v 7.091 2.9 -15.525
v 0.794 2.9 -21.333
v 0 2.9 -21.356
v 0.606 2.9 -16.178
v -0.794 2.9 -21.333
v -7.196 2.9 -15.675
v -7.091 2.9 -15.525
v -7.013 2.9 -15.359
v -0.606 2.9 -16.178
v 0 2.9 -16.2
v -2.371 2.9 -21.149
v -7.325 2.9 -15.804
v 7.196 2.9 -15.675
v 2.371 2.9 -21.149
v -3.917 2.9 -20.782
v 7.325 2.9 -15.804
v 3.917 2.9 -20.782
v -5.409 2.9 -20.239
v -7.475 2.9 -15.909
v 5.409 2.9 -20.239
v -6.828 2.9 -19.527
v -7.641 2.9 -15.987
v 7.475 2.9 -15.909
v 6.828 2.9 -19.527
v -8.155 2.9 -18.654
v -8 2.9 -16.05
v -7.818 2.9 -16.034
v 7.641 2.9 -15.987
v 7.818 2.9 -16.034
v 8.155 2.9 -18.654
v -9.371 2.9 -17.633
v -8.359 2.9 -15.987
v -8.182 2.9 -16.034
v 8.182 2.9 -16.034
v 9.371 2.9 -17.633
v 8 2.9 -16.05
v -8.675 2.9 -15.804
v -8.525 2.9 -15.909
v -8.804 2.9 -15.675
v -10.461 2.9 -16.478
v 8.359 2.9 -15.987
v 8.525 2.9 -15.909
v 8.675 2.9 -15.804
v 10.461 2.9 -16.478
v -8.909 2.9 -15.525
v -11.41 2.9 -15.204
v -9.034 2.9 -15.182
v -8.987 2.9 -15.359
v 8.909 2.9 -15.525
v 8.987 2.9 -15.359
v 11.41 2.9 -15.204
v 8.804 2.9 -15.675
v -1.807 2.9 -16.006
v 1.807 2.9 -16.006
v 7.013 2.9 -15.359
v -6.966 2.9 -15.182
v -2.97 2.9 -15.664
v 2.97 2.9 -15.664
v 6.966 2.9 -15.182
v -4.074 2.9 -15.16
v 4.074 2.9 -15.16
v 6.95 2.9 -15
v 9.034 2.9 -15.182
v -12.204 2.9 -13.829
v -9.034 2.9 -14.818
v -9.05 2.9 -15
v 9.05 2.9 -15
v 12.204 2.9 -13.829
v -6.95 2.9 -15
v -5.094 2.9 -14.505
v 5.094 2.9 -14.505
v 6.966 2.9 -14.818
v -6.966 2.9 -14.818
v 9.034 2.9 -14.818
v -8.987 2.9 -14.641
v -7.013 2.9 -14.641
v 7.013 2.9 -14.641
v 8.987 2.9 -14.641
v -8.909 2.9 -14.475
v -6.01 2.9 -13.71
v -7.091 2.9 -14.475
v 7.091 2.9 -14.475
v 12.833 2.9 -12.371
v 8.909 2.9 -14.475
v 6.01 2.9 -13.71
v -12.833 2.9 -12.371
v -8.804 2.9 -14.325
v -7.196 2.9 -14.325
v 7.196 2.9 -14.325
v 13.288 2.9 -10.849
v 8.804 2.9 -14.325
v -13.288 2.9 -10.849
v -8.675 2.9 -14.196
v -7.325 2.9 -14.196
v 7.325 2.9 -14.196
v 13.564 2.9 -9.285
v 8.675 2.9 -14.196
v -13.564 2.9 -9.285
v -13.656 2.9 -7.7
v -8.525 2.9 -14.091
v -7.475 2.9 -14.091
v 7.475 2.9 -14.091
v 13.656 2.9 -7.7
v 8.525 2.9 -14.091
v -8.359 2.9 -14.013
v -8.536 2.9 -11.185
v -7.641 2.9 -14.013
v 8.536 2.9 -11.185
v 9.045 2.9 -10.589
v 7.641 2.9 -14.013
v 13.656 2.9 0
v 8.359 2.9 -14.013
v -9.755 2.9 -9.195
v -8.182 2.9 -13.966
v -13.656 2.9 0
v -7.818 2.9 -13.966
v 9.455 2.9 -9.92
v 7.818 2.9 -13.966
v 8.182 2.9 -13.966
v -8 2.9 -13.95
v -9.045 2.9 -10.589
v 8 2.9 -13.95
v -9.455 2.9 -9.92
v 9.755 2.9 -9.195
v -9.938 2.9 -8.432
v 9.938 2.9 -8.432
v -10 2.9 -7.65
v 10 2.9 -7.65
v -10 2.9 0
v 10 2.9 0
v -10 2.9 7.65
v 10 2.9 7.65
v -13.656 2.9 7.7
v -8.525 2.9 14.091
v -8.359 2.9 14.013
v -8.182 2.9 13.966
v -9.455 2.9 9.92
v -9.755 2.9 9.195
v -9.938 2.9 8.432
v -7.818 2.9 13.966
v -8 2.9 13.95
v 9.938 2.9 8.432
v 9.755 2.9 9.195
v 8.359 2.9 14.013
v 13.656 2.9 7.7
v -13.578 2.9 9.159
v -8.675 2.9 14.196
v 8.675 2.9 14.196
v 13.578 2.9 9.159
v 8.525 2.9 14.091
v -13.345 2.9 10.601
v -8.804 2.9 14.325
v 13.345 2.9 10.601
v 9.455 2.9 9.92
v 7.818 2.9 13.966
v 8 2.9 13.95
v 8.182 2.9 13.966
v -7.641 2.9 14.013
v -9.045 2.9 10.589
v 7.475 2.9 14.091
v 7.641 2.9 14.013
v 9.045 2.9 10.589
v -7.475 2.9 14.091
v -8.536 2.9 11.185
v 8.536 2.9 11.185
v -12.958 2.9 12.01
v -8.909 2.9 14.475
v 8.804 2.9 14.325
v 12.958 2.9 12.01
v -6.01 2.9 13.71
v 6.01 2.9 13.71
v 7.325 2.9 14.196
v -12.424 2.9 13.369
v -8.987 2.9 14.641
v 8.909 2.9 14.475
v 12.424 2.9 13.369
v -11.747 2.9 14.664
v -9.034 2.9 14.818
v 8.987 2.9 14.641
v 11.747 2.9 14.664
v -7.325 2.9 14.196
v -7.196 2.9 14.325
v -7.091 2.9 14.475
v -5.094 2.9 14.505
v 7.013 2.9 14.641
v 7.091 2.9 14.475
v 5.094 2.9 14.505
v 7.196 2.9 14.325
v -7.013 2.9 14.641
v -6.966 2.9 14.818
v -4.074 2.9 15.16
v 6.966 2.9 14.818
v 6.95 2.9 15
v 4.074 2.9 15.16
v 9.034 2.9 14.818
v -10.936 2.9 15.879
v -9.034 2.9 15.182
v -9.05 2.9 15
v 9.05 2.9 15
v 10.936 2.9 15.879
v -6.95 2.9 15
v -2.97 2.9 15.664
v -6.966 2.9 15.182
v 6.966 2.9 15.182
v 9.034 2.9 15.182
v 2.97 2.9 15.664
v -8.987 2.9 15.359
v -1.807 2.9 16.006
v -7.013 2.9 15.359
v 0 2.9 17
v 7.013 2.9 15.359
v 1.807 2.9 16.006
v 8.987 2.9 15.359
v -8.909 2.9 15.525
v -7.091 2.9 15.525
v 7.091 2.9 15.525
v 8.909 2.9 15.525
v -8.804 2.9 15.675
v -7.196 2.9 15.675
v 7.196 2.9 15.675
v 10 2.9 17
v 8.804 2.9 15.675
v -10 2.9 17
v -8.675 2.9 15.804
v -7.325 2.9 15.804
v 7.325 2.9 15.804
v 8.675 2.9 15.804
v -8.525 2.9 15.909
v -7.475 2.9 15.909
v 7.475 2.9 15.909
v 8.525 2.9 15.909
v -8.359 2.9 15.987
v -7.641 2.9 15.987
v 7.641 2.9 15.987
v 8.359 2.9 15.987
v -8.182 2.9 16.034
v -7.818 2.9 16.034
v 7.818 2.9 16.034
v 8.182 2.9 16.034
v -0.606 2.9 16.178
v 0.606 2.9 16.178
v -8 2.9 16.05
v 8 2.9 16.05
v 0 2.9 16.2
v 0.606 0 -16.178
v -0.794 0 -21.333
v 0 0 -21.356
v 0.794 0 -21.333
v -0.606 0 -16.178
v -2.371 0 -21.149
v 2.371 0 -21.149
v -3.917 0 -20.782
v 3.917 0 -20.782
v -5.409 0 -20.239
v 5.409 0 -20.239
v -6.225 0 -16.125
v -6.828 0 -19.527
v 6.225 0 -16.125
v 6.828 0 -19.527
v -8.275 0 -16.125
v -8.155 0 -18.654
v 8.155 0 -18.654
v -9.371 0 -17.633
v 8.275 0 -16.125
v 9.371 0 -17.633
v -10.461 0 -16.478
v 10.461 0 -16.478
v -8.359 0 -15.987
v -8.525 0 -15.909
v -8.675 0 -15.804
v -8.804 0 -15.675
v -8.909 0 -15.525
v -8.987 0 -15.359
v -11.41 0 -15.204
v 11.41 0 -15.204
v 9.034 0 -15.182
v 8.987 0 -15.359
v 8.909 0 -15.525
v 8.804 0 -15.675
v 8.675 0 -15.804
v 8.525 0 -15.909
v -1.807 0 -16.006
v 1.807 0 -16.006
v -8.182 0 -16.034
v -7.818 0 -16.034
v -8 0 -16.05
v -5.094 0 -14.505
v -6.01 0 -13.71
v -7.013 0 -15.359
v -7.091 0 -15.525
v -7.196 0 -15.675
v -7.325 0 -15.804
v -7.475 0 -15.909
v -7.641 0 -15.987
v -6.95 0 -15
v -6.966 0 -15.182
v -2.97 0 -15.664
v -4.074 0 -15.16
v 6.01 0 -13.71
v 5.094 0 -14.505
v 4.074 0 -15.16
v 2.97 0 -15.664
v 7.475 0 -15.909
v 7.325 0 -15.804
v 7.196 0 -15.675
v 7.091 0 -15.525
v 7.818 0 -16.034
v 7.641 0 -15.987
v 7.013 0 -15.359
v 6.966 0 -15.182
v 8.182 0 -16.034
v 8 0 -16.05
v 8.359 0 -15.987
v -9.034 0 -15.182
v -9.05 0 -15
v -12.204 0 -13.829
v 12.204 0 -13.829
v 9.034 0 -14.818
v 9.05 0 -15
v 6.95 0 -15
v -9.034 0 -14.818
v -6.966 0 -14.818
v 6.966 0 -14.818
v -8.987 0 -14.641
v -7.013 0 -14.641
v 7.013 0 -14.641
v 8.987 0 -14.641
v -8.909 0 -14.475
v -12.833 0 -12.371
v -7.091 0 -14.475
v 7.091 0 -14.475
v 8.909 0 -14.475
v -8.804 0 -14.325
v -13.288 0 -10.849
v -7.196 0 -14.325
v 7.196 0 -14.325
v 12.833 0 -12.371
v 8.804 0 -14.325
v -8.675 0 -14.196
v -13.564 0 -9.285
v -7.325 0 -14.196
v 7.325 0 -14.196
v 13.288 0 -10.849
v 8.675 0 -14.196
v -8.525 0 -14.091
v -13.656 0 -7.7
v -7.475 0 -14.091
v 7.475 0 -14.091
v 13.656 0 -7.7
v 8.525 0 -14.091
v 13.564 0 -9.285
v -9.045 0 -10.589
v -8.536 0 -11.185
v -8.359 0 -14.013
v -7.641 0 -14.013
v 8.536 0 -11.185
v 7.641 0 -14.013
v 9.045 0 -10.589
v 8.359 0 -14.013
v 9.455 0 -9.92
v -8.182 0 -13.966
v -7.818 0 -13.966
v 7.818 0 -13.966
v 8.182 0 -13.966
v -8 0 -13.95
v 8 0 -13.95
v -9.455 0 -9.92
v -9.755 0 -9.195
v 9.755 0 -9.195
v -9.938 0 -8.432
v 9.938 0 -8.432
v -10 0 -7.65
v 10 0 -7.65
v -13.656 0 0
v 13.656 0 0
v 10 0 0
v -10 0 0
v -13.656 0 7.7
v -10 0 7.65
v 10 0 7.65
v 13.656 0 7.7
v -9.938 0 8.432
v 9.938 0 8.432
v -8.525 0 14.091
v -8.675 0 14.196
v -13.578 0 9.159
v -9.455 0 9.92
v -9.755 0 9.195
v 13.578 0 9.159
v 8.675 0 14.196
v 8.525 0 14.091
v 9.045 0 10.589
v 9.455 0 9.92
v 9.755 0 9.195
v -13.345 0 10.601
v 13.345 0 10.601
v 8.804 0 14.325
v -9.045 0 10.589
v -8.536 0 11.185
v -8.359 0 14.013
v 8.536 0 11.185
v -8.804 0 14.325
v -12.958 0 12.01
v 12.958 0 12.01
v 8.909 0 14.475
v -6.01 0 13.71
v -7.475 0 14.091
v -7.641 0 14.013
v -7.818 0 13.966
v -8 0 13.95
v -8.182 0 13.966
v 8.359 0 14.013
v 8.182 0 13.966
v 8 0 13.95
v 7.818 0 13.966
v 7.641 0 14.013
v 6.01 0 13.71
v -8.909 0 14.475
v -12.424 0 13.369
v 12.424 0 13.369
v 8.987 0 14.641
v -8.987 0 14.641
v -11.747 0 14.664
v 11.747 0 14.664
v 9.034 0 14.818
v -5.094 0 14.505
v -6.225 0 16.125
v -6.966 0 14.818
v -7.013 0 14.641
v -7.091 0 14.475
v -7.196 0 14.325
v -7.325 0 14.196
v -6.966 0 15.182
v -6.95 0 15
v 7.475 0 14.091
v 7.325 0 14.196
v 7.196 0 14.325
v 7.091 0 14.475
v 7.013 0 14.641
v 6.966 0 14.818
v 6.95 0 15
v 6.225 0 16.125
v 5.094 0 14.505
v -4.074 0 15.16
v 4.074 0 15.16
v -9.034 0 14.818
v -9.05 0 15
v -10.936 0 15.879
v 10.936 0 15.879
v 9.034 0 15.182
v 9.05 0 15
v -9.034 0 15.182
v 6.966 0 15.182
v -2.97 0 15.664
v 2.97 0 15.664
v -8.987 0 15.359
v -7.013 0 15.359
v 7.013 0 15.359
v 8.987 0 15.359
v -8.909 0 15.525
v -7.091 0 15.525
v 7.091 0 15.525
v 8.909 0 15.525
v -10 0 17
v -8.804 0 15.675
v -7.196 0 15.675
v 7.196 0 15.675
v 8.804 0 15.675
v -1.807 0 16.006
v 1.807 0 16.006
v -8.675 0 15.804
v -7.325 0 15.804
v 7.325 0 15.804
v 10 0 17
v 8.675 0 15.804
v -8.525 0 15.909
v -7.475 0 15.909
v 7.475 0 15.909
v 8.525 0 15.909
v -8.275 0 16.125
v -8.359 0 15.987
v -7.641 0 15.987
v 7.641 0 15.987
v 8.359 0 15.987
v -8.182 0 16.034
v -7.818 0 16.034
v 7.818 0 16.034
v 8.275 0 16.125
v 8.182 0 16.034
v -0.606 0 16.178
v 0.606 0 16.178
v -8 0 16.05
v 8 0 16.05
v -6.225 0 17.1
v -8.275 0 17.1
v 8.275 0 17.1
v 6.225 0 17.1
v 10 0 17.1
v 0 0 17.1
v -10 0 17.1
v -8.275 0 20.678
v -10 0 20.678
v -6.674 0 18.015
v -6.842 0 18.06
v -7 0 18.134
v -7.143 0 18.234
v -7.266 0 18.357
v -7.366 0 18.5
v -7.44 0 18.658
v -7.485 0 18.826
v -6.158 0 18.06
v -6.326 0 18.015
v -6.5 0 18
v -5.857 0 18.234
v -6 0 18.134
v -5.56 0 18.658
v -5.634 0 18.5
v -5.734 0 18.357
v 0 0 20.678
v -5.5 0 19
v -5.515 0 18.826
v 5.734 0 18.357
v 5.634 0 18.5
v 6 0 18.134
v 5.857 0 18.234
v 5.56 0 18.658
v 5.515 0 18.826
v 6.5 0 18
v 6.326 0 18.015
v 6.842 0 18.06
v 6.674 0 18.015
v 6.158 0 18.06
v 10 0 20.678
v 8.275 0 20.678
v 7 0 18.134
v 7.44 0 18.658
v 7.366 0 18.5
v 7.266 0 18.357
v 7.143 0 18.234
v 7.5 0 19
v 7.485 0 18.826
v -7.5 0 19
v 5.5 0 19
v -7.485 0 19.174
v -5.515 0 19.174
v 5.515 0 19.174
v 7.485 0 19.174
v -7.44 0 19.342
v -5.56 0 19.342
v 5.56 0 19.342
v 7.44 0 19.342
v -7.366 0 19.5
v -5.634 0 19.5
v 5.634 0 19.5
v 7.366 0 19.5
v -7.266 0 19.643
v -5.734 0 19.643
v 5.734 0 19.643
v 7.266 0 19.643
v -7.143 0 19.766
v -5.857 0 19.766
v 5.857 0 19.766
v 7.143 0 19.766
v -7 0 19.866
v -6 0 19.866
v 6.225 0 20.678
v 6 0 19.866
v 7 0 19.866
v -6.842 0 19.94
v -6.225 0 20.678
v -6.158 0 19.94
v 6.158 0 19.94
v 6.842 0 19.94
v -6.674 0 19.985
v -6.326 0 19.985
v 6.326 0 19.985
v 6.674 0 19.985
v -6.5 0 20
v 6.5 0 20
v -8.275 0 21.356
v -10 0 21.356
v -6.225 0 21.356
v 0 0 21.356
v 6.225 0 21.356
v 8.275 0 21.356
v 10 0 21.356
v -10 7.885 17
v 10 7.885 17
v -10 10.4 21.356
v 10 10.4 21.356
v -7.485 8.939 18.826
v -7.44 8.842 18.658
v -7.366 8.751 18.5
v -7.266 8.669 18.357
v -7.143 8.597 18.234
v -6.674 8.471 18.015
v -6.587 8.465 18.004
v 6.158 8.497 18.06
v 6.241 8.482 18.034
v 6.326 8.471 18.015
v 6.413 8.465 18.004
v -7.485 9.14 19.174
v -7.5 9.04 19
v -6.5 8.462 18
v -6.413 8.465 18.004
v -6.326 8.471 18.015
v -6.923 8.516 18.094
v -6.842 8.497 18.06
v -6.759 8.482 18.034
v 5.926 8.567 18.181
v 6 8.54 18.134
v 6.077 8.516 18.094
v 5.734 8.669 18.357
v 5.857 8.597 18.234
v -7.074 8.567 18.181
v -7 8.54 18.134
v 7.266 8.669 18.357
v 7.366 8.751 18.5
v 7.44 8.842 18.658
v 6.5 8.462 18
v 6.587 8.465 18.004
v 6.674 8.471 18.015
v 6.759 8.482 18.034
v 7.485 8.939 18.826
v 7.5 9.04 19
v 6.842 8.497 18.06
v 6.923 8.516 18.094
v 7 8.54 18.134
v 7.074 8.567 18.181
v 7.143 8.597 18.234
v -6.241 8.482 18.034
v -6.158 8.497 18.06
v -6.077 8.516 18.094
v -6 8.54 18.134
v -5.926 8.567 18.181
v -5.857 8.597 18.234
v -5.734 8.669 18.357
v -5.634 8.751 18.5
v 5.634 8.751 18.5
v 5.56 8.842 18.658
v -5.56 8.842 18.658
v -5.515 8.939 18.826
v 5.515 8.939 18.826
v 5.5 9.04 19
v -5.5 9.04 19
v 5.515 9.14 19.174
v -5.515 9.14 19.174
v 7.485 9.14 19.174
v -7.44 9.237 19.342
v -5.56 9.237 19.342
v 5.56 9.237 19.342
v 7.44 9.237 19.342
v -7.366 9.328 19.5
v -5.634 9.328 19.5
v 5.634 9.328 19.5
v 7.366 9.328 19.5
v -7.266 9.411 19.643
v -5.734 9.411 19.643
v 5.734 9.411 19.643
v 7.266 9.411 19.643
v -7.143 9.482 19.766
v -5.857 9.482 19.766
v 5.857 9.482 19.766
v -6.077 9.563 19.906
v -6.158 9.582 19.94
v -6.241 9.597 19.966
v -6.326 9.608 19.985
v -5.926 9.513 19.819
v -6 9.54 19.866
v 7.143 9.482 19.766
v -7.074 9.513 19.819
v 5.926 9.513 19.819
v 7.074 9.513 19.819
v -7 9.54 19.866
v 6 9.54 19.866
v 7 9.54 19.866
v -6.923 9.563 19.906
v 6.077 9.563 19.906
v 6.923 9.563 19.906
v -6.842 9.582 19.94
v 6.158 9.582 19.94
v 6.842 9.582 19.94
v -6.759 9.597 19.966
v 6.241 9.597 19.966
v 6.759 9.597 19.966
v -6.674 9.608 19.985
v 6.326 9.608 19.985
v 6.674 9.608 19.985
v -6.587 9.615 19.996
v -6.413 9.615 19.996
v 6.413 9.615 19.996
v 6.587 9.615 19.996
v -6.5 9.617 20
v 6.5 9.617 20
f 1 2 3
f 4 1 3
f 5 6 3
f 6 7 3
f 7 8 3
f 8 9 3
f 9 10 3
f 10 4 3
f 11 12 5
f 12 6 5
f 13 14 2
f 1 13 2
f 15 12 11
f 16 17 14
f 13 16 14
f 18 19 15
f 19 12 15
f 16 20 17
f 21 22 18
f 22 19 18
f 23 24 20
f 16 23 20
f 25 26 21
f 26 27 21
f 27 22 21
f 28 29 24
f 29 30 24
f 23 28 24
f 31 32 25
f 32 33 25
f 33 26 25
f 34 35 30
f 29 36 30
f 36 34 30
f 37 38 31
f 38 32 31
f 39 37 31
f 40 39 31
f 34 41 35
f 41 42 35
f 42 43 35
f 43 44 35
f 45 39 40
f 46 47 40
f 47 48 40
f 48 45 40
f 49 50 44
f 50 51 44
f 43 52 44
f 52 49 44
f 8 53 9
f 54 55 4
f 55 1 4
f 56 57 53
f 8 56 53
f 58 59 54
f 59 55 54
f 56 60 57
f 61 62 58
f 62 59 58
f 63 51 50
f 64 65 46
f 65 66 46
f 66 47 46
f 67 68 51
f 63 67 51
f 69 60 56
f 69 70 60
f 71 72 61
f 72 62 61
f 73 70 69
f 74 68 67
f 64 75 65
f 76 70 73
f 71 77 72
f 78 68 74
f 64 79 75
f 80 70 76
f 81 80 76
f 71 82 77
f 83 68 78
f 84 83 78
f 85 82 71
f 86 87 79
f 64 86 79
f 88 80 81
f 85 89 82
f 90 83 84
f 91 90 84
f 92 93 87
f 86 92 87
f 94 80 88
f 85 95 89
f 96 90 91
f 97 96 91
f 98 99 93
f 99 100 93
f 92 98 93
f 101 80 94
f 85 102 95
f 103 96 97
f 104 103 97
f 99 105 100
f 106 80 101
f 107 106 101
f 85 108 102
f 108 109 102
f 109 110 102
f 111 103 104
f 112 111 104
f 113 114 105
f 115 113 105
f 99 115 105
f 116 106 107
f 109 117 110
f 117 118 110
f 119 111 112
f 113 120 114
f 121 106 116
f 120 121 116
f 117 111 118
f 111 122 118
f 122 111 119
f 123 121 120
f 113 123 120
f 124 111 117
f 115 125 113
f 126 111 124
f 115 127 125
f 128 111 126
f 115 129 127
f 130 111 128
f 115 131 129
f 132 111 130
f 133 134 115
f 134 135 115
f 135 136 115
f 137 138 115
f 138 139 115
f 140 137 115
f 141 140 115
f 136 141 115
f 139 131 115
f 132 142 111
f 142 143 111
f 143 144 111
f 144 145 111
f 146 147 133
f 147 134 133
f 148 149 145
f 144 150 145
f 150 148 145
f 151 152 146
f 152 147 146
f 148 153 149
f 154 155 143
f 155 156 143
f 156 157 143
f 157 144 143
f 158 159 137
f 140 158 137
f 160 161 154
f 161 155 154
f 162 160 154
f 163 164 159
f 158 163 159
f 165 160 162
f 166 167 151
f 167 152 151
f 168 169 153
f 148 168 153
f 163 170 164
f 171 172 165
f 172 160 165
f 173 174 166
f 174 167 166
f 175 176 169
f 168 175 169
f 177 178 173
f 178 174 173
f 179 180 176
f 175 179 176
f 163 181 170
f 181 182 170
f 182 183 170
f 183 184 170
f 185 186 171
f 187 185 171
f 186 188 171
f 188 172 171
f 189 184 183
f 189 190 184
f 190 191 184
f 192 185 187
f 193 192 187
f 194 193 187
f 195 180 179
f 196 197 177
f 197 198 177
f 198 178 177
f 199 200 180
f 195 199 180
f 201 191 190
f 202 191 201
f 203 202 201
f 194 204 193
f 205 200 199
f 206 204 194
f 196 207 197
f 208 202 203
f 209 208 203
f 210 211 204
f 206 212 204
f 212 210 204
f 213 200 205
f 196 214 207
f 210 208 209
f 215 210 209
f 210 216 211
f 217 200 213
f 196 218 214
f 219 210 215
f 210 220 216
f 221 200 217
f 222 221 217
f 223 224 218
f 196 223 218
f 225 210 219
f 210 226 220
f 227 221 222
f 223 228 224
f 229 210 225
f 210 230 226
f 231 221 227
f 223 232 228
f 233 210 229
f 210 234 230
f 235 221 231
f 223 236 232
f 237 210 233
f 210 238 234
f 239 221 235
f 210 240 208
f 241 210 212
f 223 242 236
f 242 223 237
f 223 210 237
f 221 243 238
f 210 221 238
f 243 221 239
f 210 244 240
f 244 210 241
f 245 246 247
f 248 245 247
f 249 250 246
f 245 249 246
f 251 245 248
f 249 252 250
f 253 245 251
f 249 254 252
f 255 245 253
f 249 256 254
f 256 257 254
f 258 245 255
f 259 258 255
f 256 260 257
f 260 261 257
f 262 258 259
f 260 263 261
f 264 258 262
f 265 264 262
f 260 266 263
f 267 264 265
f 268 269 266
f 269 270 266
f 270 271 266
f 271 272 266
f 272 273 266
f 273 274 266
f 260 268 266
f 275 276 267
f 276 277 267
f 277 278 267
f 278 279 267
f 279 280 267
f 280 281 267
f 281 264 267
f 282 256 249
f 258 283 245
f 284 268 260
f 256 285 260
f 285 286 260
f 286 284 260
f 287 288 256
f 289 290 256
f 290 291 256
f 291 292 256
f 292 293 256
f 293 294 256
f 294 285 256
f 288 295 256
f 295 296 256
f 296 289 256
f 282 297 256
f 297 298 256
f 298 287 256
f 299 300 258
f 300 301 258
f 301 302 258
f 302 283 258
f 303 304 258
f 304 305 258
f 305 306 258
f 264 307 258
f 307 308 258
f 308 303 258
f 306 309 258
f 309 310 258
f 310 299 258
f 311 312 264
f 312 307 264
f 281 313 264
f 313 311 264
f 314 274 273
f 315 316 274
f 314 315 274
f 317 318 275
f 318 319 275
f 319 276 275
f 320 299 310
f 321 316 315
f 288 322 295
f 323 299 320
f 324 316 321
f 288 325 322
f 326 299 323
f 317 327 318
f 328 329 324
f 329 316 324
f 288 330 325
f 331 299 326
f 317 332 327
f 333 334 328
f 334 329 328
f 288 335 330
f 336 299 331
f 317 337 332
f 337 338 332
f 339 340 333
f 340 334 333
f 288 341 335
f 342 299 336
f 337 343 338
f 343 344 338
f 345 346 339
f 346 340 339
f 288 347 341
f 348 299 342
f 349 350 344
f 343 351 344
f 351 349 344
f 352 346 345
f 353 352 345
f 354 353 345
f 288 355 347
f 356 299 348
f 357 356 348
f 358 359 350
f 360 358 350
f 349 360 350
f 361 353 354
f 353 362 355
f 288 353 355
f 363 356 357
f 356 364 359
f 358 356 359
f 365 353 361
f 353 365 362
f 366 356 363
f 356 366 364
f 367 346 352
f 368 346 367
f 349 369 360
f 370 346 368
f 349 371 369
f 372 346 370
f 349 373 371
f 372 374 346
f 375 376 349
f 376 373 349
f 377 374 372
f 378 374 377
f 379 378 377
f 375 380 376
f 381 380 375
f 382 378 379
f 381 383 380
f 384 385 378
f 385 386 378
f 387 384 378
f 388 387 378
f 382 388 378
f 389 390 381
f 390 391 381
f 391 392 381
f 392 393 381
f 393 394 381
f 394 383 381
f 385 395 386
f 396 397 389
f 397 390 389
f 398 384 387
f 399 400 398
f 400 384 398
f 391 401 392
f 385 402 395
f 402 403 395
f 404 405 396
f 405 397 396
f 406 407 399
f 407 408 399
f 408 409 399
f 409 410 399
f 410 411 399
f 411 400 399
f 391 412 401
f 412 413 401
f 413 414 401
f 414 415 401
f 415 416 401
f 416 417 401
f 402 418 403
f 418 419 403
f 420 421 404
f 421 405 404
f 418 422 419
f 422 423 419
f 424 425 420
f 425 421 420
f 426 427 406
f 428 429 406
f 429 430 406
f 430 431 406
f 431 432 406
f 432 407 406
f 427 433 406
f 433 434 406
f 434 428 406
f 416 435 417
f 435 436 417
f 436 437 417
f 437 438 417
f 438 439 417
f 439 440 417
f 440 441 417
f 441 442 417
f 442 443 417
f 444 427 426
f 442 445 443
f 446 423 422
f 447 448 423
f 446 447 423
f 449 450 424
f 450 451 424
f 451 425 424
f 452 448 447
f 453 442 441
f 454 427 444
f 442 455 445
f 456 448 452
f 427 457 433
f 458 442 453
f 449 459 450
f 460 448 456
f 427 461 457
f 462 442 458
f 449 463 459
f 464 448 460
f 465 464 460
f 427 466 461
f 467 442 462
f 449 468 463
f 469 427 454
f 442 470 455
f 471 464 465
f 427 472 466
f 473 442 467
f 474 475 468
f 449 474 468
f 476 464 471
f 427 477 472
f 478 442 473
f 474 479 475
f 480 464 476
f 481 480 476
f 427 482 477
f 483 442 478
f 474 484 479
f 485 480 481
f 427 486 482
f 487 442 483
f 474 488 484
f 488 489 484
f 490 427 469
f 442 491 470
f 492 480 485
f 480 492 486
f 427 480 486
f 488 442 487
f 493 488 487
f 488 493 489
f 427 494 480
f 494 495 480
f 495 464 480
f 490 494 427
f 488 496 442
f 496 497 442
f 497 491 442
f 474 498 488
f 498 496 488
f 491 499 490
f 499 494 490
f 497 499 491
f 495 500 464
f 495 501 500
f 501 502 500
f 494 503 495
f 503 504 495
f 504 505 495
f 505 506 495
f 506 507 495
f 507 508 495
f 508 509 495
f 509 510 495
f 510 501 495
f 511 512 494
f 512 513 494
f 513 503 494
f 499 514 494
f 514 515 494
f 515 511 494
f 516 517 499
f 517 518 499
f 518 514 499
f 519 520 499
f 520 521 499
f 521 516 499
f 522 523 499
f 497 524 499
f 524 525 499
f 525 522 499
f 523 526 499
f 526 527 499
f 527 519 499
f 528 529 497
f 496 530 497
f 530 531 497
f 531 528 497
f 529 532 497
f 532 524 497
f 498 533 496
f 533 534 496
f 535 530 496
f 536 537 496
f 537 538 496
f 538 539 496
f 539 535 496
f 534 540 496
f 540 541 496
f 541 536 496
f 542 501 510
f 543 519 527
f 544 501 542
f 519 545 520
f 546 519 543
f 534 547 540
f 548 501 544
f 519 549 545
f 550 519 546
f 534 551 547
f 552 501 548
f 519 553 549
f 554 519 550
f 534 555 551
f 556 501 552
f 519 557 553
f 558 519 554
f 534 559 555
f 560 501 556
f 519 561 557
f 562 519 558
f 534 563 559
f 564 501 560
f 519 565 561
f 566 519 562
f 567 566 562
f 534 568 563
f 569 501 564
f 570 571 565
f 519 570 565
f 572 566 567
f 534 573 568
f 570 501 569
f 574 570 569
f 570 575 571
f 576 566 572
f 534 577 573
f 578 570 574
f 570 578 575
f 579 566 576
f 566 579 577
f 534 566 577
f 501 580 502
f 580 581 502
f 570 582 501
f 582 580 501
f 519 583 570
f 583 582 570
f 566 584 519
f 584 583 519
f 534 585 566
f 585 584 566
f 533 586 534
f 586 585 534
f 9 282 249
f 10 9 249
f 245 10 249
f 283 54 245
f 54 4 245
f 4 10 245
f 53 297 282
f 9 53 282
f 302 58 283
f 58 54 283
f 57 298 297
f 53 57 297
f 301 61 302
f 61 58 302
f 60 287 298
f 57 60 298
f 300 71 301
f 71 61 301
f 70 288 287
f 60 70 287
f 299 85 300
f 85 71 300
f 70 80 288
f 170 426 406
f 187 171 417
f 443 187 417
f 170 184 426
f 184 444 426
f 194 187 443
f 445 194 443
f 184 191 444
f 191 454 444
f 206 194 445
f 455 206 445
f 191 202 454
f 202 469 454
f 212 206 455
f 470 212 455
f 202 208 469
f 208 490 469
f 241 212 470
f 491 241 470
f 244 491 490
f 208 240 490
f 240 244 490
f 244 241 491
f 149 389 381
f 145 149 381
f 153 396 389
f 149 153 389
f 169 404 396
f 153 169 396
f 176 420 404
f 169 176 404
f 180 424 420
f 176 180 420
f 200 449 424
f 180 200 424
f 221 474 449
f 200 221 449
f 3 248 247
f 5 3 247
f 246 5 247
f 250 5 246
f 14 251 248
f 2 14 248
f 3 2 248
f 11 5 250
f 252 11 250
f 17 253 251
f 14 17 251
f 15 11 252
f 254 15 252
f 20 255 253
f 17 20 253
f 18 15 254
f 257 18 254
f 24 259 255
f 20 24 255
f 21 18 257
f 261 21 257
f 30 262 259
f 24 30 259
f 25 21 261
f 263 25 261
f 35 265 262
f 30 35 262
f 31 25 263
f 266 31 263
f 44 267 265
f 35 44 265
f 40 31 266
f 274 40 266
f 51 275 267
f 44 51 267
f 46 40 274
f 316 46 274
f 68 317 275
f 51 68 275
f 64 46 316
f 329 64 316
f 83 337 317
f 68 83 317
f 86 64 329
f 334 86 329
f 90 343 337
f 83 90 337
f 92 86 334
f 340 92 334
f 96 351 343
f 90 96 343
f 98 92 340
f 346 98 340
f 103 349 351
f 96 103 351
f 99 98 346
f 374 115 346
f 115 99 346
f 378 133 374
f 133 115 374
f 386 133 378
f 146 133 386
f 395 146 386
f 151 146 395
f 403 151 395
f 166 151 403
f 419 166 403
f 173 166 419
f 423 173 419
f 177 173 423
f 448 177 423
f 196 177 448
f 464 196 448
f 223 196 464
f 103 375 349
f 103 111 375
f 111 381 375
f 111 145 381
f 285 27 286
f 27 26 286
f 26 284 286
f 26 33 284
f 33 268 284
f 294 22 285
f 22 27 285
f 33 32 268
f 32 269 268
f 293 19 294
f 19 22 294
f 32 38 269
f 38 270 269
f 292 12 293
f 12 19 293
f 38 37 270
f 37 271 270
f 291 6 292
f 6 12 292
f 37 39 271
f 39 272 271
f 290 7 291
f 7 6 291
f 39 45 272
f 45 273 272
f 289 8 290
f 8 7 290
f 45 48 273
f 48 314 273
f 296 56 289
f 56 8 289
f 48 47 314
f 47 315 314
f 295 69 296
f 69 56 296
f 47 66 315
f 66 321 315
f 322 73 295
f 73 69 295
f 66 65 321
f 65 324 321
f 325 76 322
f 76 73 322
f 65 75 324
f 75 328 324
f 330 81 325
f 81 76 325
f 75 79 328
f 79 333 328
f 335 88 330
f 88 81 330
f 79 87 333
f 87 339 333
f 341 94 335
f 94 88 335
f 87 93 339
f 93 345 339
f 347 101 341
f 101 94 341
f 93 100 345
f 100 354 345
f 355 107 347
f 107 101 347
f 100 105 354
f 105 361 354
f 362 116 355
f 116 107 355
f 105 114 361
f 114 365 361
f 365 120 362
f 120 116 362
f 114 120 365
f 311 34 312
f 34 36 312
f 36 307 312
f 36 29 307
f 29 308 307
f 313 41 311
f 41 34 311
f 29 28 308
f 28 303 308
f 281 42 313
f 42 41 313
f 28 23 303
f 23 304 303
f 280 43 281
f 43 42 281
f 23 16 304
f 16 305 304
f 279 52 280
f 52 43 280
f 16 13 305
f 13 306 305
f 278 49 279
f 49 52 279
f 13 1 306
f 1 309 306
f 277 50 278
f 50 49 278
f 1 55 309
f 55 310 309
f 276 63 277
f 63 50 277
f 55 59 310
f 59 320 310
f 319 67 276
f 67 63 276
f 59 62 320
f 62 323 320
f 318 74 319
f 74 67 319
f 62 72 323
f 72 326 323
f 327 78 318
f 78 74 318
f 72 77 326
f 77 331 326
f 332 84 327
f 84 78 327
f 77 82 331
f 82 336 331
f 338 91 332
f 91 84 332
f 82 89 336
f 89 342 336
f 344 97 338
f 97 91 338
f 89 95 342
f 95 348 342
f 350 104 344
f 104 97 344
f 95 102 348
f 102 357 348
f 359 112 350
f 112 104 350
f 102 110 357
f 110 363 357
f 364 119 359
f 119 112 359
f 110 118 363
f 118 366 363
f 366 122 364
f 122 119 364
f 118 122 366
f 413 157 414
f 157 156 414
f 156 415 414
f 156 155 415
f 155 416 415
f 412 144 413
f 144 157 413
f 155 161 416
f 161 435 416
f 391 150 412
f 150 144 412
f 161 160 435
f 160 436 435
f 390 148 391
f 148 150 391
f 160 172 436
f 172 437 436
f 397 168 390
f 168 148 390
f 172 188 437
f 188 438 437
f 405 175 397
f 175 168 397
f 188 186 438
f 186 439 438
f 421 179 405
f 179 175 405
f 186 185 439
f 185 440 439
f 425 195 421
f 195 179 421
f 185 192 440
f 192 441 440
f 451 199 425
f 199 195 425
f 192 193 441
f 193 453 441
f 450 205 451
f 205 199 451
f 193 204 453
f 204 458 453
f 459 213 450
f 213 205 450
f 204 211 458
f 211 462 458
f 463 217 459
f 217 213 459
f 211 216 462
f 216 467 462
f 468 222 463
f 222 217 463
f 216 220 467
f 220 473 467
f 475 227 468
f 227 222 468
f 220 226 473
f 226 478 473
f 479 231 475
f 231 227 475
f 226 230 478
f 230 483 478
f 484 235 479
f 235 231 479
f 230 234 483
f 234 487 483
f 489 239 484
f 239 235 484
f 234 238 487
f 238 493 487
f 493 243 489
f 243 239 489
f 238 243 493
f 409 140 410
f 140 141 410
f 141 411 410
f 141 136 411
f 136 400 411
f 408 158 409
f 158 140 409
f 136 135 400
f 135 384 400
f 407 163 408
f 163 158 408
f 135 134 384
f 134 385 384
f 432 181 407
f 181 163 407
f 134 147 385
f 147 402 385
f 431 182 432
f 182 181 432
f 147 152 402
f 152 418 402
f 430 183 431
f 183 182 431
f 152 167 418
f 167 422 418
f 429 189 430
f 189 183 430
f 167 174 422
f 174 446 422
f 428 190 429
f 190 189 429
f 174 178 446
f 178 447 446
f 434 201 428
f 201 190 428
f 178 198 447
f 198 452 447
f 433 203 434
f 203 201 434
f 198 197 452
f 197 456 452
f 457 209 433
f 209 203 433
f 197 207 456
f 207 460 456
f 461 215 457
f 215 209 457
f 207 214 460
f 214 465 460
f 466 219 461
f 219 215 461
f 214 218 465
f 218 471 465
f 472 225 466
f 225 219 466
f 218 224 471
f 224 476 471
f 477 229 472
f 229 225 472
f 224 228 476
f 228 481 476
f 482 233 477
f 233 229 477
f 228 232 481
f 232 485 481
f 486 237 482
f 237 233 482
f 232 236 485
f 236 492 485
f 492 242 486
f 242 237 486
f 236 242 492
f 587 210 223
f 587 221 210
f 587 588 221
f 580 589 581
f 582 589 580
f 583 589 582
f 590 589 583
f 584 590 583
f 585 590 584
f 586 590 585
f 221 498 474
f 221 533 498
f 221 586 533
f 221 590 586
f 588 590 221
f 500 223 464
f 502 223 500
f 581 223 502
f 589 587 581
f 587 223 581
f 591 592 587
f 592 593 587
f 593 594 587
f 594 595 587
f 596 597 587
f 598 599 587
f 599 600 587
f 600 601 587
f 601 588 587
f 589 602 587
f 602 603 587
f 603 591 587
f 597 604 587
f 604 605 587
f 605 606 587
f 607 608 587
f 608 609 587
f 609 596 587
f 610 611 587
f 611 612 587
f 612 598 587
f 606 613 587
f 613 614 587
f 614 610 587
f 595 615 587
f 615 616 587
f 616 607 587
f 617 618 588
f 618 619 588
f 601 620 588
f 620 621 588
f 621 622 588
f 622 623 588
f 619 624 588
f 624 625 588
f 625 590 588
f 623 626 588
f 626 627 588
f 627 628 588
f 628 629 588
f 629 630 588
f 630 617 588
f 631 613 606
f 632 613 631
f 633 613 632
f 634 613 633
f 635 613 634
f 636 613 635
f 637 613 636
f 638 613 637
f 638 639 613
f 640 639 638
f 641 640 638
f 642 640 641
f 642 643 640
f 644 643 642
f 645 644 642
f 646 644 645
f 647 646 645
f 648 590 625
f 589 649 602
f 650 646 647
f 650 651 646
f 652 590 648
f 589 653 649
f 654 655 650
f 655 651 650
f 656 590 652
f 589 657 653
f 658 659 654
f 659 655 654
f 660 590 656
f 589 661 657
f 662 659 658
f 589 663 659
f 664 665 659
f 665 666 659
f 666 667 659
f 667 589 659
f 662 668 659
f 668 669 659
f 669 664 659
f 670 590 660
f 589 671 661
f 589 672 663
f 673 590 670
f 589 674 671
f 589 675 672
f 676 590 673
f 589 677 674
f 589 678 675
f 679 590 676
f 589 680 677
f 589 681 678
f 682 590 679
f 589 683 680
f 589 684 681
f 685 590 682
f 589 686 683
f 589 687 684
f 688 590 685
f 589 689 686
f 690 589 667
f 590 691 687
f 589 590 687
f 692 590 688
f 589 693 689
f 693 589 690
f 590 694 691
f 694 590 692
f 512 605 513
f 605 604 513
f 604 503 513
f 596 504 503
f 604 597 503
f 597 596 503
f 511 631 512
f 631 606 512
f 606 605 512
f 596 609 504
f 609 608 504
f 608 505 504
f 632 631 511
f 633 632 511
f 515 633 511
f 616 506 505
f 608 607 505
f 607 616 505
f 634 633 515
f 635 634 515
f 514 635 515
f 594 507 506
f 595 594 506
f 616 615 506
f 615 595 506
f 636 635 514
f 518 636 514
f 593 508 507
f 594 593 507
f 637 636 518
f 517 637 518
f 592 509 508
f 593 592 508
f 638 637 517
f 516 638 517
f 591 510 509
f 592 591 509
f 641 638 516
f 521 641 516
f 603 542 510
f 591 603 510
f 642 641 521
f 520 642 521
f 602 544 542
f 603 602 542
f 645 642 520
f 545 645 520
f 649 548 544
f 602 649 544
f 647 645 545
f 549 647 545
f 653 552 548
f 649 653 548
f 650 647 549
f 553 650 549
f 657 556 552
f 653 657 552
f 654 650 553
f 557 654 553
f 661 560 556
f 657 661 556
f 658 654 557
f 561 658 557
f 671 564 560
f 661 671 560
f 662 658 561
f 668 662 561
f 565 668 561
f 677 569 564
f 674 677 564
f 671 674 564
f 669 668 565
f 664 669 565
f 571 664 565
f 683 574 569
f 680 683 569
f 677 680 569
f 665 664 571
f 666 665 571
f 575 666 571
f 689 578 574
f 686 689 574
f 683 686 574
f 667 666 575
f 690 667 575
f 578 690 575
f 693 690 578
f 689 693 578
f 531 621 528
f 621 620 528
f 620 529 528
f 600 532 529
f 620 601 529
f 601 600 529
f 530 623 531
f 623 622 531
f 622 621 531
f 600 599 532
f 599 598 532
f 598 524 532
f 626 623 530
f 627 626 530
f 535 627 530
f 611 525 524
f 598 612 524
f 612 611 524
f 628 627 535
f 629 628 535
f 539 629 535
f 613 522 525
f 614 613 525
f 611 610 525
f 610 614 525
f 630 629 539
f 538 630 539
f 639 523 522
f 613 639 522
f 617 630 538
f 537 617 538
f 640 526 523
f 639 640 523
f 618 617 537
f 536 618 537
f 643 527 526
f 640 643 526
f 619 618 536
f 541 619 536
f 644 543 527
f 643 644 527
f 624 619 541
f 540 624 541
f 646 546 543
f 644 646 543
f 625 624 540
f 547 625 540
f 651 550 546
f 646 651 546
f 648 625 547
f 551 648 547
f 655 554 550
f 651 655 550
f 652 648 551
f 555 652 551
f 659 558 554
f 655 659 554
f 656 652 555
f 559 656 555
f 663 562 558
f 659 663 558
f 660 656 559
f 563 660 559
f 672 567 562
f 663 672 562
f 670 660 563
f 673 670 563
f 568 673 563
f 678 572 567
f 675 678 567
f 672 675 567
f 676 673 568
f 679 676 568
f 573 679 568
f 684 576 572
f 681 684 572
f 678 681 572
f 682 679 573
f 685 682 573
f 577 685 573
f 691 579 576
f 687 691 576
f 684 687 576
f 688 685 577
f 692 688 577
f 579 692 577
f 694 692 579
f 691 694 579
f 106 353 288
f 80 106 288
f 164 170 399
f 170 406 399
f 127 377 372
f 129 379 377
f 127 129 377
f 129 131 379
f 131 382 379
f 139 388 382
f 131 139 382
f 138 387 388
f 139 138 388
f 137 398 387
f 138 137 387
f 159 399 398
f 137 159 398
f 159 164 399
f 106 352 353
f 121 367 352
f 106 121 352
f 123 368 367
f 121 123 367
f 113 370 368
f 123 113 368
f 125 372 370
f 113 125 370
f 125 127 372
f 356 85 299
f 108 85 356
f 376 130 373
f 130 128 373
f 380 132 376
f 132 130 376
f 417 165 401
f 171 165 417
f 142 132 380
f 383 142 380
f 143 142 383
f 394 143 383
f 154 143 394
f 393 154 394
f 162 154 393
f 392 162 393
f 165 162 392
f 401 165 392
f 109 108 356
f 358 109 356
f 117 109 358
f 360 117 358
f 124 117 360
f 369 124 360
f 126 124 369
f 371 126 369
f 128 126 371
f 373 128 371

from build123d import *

# Parameters (mm, degrees)
BOSS_EXTRUDE6_DEPTH      = 2.9
SKETCH27_R               = 1.05
CUT_EXTRUDE12_DEPTH      = 3.9
SKETCH29_W               = 20
SKETCH29_H               = 4.356134153
BOSS_EXTRUDE8_DEPTH      = 11.5
BOSS_EXTRUDE8_DEPTH_BACK = 2.9
CUT_EXTRUDE16_DEPTH      = 24.656134153
SKETCH34_R               = 1
CUT_EXTRUDE17_DEPTH      = 11.4
CUT_EXTRUDE18_DEPTH      = 3.9
FILLET1_R                = 5
FILLET1_OF_MIRROR1_R     = 5


with BuildPart() as part:
    # Sketch26 → Boss-Extrude6 (new body)
    with BuildSketch(Plane(origin=(0, 0, 0), x_dir=(1, 0, 0), z_dir=(0, 1, 0))):
        with BuildLine():
            Line((-13.656134153, -7.7), (-13.656134153, 7.7))
            ThreePointArc((-13.656134153, 7.7), (0, 21.356134153), (13.656134153, 7.7))
            Line((13.656134153, 7.7), (13.656134153, -7.7))
            ThreePointArc((13.656134153, -7.7), (0, -21.356134153), (-13.656134153, -7.7))
        make_face()
        with BuildLine():
            Line((-8.5, 7.7), (-8.5, -7.7))
            ThreePointArc((-8.5, -7.7), (0, -16.2), (8.5, -7.7))
            Line((8.5, -7.7), (8.5, 7.7))
            ThreePointArc((8.5, 7.7), (0, 16.2), (-8.5, 7.7))
        make_face(mode=Mode.SUBTRACT)
    extrude(amount=BOSS_EXTRUDE6_DEPTH)

    # Sketch27 → Cut-Extrude12 (cut, through all)
    with BuildSketch(Plane(origin=(0, 2.9, 0), x_dir=(1, 0, 0), z_dir=(0, 1, 0))):
        with Locations((-8, 15)):
            Circle(SKETCH27_R)
        with Locations((8, 15)):
            Circle(SKETCH27_R)
        with Locations((8, -15)):
            Circle(SKETCH27_R)
        with Locations((-8, -15)):
            Circle(SKETCH27_R)
    extrude(amount=-CUT_EXTRUDE12_DEPTH, mode=Mode.SUBTRACT)

    # Sketch29 → Boss-Extrude8 (add, two sides)
    with BuildSketch(Plane(origin=(0, 2.9, 0), x_dir=(1, 0, 0), z_dir=(0, 1, 0))) as boss_extrude8_sk:
        with Locations((0, -19.178067076)):
            Rectangle(SKETCH29_W, SKETCH29_H)
    extrude(amount=BOSS_EXTRUDE8_DEPTH)
    extrude(boss_extrude8_sk.sketch, amount=-BOSS_EXTRUDE8_DEPTH_BACK)

    # Sketch33 → Cut-Extrude16 (cut, through all)
    with BuildSketch(Plane(origin=(10, 0, 0), x_dir=(0, 0, -1), z_dir=(1, 0, 0))):
        Polygon((-21.356134153, 14.4), (-21.356134153, 10.4), (-17, 7.884984774), (-17, 14.4), align=None)
    extrude(amount=-CUT_EXTRUDE16_DEPTH, mode=Mode.SUBTRACT)

    # Sketch34 → Cut-Extrude17 (cut, through all)
    with BuildSketch(Plane.XZ):
        with Locations((6.5, 19)):
            Circle(SKETCH34_R)
        with Locations((-6.5, 19)):
            Circle(SKETCH34_R)
    extrude(amount=-CUT_EXTRUDE17_DEPTH, mode=Mode.SUBTRACT)

    # Sketch35 → Cut-Extrude18 (cut, through all)
    with BuildSketch(Plane(origin=(0, 2.9, 0), x_dir=(1, 0, 0), z_dir=(0, 1, 0))):
        Polygon((-10, 9.72081528), (-10, -9.72081528), (-6.01040764, -13.71040764), (-6.01040764, 13.71040764), align=None)
    cut_extrude18 = extrude(amount=-CUT_EXTRUDE18_DEPTH, mode=Mode.SUBTRACT)

    # Fillet1
    fillet1_edges = [part.edges().sort_by_distance(p)[0] for p in [
        (-10, 1.45, -9.72081528),
        (-10, 1.45, 9.72081528),
    ]]
    fillet(fillet1_edges, radius=FILLET1_R)

    # Mirror1: Cut-Extrude18 across plane
    add(cut_extrude18.mirror(Plane(origin=(0, 0, 0), x_dir=(0, 0, 1), z_dir=(1, 0, 0))), mode=Mode.SUBTRACT)

    # Fillet1 of Mirror1
    fillet1_of_mirror1_edges = [part.edges().sort_by_distance(p)[0] for p in [
        (10, 1.45, -9.72081528),
        (10, 1.45, 9.72081528),
    ]]
    fillet(fillet1_of_mirror1_edges, radius=FILLET1_OF_MIRROR1_R)


solid = part.part
